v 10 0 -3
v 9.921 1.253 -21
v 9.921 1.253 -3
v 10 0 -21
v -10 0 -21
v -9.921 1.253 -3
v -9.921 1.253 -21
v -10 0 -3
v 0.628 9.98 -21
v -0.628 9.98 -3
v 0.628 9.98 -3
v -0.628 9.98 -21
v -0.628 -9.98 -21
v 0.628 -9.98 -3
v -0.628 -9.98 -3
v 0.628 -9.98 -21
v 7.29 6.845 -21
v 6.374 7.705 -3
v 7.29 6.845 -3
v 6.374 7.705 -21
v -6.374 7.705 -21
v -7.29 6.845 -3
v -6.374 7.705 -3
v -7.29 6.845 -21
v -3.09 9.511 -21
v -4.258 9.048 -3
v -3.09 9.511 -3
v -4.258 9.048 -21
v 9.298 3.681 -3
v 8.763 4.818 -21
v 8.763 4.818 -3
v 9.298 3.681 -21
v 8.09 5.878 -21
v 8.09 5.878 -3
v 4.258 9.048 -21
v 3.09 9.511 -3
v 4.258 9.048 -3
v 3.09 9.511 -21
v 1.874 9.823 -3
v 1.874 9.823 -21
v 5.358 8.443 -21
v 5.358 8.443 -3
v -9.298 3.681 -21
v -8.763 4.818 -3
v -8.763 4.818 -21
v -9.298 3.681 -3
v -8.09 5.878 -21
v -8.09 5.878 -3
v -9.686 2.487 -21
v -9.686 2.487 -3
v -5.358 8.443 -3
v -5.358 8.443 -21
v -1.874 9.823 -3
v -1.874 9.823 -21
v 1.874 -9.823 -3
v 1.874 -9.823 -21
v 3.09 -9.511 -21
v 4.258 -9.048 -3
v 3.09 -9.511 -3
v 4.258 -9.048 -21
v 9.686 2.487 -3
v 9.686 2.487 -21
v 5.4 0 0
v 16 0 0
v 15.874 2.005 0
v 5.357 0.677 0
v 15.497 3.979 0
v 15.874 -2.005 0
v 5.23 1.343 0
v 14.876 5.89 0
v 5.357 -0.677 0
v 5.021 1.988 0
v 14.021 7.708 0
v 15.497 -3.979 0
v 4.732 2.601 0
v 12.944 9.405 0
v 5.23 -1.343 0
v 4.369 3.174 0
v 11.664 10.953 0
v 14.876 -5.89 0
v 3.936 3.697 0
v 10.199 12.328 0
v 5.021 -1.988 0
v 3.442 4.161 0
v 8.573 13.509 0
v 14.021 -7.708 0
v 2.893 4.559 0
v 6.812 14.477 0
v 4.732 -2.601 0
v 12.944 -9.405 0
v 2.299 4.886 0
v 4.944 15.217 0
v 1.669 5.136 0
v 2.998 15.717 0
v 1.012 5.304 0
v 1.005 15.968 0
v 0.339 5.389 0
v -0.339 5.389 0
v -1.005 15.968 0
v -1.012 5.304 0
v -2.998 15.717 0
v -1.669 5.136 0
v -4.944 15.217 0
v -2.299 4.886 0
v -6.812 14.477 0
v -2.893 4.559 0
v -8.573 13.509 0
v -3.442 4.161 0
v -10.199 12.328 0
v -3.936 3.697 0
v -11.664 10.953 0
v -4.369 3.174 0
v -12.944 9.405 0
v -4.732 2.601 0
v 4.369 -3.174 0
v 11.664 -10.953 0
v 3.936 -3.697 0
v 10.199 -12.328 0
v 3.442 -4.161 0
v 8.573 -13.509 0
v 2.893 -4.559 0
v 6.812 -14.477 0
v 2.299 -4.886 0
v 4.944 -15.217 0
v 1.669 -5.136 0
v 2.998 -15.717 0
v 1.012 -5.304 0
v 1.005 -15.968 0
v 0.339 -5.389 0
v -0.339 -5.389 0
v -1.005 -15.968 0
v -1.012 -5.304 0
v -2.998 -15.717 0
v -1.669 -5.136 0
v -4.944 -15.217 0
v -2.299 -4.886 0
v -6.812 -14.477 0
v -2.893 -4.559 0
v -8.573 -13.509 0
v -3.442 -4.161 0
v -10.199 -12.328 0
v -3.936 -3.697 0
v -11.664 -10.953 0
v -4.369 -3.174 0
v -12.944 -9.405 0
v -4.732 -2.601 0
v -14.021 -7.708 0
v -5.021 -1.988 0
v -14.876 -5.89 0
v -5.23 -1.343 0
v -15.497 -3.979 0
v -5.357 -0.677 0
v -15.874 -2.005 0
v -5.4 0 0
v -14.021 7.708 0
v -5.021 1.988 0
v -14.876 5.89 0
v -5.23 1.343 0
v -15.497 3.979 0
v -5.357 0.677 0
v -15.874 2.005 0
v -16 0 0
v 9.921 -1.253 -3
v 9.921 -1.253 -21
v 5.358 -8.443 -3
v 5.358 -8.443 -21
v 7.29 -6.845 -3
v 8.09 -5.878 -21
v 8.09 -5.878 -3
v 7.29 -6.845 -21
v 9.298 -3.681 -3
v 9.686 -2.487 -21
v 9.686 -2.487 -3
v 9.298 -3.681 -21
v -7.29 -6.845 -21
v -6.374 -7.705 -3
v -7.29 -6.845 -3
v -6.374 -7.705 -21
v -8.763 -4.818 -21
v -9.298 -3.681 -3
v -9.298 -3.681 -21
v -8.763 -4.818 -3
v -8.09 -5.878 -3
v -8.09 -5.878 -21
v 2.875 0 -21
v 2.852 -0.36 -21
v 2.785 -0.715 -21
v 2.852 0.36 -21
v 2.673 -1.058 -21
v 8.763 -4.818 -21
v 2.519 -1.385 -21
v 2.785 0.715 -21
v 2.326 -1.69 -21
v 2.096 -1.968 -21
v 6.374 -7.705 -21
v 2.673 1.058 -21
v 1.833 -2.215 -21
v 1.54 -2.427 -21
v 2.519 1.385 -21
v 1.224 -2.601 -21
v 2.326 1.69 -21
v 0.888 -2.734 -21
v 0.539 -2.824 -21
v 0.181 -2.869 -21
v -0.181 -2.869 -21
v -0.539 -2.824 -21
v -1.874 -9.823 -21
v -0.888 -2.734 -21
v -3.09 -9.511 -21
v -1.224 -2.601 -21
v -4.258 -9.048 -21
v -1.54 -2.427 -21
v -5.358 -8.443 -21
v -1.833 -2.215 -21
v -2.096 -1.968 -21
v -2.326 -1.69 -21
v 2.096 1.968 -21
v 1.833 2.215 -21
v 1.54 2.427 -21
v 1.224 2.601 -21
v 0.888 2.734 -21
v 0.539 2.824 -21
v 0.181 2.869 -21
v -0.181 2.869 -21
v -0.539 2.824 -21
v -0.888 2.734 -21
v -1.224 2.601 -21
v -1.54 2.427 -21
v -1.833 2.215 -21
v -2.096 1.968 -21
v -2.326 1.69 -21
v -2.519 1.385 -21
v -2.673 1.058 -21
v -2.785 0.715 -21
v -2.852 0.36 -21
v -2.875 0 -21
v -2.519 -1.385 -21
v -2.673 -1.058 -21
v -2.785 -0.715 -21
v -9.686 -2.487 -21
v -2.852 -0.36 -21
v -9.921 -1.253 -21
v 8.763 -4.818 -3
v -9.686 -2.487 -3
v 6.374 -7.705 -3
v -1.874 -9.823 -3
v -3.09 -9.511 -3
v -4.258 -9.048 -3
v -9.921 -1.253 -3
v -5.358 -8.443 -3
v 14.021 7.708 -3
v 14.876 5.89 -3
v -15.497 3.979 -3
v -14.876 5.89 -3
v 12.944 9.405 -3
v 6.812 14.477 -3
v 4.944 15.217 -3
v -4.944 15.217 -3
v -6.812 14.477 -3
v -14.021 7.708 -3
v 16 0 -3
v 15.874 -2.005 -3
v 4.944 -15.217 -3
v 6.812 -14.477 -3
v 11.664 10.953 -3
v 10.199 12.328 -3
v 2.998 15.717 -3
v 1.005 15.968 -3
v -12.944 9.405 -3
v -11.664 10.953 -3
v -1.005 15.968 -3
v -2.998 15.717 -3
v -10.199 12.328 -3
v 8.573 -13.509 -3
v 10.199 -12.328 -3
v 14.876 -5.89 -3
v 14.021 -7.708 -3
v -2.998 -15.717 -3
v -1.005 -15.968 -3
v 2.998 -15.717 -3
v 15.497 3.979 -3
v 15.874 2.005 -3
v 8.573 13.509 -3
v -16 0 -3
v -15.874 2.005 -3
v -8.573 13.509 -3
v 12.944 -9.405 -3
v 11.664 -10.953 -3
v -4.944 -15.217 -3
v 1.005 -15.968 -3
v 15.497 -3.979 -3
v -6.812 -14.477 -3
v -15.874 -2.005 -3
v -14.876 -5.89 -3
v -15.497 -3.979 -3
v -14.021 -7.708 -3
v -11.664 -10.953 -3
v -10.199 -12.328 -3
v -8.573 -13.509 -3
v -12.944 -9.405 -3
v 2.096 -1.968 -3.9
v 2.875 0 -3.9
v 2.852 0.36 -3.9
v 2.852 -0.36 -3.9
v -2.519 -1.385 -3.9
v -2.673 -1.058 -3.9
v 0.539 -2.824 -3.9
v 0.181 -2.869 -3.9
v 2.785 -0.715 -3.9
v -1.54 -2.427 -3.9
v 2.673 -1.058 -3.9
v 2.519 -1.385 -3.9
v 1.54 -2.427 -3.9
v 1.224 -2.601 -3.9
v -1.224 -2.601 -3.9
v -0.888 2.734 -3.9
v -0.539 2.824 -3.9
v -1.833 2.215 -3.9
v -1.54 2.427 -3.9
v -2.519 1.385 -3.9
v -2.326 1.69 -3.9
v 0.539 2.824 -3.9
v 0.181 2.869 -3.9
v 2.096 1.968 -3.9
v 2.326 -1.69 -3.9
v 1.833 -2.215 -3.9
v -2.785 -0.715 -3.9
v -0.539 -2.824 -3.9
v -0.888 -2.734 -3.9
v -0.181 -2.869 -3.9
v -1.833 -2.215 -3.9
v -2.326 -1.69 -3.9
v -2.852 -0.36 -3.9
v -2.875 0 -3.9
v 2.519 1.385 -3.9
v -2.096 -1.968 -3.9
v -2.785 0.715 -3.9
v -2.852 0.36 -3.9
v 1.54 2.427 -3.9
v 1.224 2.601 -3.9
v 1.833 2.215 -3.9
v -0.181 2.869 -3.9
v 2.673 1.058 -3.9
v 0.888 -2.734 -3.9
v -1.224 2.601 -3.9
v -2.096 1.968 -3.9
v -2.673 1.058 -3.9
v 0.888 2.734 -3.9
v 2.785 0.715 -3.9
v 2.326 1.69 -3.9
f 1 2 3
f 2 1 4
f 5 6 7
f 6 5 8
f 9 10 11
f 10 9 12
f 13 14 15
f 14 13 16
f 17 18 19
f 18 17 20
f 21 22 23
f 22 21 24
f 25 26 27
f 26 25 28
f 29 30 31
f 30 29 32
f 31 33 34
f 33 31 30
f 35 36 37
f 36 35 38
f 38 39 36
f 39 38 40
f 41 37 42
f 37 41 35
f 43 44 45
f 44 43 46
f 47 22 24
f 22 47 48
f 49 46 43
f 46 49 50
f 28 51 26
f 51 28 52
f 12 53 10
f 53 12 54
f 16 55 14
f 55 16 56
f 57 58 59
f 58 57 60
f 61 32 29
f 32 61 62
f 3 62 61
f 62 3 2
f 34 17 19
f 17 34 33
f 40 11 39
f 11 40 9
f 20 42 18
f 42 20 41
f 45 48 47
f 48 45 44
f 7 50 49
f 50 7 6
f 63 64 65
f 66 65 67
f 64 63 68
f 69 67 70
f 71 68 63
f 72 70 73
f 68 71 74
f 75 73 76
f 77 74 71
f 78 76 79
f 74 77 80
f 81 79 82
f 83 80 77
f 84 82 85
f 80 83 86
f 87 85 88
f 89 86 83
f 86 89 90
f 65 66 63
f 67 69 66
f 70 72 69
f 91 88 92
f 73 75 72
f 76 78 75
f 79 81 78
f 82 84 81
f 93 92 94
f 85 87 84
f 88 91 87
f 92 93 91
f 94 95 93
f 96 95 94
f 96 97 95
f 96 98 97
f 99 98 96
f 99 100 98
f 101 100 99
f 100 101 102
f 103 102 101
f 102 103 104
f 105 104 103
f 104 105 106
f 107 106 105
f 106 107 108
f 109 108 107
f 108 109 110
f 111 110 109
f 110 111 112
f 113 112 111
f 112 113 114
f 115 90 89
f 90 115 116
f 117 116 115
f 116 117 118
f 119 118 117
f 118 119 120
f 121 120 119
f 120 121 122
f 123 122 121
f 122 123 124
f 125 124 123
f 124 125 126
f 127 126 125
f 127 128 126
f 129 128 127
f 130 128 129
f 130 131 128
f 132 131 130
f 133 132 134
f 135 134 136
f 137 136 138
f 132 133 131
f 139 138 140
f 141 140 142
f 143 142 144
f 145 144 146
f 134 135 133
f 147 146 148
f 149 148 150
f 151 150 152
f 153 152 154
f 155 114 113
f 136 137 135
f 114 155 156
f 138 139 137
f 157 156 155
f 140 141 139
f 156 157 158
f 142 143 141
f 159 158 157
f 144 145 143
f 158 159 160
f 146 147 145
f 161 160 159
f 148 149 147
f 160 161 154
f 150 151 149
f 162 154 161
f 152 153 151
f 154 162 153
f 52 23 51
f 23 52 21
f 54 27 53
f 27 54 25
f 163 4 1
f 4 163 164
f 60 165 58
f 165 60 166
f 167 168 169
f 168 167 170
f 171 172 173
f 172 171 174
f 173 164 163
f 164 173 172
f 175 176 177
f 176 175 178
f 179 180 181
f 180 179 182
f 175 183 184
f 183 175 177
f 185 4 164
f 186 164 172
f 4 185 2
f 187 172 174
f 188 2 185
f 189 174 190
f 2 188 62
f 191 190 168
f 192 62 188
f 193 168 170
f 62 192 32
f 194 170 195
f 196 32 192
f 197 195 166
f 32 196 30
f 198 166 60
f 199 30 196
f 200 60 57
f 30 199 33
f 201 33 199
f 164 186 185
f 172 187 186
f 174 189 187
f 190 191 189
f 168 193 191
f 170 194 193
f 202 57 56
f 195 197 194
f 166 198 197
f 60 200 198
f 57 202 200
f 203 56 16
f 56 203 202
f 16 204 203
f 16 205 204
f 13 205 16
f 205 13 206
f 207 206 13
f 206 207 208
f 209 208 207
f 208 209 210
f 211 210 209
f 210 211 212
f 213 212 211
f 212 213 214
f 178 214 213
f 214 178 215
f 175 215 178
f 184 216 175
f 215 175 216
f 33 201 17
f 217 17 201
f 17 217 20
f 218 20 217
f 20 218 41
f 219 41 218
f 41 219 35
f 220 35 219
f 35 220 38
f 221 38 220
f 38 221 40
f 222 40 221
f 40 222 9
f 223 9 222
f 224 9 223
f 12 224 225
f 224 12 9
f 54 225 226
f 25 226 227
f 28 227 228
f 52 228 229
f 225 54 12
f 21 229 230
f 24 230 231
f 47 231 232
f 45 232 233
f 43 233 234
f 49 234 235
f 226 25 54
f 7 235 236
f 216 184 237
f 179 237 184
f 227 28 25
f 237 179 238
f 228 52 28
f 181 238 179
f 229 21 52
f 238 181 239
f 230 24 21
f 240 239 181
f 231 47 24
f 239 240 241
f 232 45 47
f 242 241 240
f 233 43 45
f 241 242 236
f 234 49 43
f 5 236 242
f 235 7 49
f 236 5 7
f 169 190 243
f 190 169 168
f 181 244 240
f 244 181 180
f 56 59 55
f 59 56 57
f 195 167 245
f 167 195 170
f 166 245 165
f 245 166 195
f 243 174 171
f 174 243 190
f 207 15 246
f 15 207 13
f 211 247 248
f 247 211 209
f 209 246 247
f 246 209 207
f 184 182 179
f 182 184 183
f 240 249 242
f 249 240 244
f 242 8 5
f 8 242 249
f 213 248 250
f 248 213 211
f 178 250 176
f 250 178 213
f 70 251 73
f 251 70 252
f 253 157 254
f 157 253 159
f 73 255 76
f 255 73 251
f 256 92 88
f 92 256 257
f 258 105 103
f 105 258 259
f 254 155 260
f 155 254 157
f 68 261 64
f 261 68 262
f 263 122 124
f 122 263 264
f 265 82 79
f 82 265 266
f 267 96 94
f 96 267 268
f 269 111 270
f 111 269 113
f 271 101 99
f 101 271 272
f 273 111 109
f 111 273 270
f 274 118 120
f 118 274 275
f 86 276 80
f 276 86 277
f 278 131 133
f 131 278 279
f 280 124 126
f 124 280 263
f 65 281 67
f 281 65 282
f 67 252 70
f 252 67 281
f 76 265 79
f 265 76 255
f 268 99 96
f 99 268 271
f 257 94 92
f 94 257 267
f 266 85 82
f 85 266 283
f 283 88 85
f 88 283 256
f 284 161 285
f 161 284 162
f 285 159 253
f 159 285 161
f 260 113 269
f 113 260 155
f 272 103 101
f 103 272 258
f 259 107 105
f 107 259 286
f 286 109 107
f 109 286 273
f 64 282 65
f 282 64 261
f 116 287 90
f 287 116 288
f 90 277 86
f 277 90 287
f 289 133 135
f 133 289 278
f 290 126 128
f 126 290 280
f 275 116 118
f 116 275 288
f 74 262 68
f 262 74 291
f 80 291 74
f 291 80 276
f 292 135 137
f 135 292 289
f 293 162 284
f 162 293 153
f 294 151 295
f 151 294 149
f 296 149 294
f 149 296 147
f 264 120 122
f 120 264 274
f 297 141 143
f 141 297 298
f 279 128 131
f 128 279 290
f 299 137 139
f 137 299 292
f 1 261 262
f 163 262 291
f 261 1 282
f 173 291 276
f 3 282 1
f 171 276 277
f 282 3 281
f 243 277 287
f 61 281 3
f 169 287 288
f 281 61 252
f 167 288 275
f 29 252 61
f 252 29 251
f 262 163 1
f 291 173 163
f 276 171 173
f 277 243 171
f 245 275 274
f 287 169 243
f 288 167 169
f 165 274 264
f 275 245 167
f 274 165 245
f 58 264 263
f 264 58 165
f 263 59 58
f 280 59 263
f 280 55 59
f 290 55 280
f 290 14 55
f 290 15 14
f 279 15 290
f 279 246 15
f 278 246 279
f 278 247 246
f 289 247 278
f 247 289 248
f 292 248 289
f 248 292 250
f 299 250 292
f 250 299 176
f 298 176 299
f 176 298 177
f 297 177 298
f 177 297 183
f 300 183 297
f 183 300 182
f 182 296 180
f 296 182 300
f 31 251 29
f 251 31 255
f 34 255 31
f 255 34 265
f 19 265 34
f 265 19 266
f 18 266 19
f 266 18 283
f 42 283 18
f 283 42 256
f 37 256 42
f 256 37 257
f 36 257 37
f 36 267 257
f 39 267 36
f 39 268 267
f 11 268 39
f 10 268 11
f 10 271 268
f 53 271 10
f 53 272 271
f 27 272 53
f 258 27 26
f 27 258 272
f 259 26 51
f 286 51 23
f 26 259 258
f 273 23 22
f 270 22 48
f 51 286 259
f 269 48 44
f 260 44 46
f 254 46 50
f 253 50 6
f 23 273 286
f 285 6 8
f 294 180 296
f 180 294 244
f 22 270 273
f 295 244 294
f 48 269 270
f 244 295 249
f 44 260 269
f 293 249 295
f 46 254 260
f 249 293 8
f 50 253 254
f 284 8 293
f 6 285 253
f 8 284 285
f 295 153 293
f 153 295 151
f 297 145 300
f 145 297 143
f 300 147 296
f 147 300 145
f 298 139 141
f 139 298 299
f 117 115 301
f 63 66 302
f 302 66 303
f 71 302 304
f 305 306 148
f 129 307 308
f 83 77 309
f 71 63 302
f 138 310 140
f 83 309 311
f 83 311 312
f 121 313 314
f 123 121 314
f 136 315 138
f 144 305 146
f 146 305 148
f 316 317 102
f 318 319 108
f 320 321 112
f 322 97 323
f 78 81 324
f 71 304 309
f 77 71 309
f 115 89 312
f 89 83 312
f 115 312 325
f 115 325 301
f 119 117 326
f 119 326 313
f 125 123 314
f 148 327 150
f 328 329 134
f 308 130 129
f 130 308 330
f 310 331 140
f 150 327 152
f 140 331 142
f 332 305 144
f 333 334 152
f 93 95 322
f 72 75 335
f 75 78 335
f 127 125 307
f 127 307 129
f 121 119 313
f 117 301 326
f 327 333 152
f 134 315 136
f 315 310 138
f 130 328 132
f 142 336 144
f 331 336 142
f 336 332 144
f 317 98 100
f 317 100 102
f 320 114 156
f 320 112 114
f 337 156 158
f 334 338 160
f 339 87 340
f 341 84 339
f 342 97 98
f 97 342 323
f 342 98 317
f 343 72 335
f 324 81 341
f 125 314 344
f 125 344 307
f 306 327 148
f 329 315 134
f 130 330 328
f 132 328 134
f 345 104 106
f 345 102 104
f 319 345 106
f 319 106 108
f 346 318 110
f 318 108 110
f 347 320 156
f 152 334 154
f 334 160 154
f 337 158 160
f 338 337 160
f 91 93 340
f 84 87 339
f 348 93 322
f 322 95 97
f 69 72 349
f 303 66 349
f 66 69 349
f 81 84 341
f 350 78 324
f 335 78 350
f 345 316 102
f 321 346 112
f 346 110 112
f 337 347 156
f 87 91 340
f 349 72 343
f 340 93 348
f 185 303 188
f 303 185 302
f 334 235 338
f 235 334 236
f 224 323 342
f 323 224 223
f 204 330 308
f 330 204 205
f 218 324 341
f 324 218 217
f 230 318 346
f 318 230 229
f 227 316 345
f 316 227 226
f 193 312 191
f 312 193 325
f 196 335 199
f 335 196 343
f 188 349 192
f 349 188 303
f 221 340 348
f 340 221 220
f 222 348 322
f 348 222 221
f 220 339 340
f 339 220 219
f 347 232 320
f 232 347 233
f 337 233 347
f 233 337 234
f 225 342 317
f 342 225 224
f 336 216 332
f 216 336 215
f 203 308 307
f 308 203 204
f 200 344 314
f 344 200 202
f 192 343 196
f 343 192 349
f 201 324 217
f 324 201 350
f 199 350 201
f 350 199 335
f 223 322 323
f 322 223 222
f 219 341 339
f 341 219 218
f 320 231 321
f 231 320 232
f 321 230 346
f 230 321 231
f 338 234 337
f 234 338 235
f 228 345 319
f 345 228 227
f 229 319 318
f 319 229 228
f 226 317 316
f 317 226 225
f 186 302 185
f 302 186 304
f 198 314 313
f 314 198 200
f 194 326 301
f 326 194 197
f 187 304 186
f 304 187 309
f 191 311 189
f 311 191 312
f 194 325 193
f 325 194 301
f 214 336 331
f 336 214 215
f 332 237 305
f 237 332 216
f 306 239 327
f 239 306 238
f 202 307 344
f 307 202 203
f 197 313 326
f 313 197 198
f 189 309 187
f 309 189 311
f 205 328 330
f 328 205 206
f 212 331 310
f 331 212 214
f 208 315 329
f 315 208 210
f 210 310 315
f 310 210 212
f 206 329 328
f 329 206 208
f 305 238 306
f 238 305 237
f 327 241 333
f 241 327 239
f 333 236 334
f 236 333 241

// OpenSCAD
$fn = 50;


difference() {
	union() {
		translate(v = [0, 0, -21.0000000000]) {
			cylinder(h = 21, r = 10.0000000000);
		}
		translate(v = [0, 0, -3.0000000000]) {
			cylinder(h = 3, r = 16.0000000000);
		}
	}
	union() {
		translate(v = [0, 0, 0]) {
			rotate(a = [0, 0, 0]) {
				difference() {
					union() {
						#translate(v = [0, 0, -21.0000000000]) {
							cylinder(h = 21, r = 2.6000000000);
						}
						#translate(v = [0, 0, -3.9000000000]) {
							cylinder(h = 3.9000000000, r1 = 2.8750000000, r2 = 5.4000000000);
						}
						#translate(v = [0, 0, -21.0000000000]) {
							cylinder(h = 21, r = 2.8750000000);
						}
						#translate(v = [0, 0, -21.0000000000]) {
							cylinder(h = 21, r = 2.6000000000);
						}
					}
					union();
				}
			}
		}
	}
}
